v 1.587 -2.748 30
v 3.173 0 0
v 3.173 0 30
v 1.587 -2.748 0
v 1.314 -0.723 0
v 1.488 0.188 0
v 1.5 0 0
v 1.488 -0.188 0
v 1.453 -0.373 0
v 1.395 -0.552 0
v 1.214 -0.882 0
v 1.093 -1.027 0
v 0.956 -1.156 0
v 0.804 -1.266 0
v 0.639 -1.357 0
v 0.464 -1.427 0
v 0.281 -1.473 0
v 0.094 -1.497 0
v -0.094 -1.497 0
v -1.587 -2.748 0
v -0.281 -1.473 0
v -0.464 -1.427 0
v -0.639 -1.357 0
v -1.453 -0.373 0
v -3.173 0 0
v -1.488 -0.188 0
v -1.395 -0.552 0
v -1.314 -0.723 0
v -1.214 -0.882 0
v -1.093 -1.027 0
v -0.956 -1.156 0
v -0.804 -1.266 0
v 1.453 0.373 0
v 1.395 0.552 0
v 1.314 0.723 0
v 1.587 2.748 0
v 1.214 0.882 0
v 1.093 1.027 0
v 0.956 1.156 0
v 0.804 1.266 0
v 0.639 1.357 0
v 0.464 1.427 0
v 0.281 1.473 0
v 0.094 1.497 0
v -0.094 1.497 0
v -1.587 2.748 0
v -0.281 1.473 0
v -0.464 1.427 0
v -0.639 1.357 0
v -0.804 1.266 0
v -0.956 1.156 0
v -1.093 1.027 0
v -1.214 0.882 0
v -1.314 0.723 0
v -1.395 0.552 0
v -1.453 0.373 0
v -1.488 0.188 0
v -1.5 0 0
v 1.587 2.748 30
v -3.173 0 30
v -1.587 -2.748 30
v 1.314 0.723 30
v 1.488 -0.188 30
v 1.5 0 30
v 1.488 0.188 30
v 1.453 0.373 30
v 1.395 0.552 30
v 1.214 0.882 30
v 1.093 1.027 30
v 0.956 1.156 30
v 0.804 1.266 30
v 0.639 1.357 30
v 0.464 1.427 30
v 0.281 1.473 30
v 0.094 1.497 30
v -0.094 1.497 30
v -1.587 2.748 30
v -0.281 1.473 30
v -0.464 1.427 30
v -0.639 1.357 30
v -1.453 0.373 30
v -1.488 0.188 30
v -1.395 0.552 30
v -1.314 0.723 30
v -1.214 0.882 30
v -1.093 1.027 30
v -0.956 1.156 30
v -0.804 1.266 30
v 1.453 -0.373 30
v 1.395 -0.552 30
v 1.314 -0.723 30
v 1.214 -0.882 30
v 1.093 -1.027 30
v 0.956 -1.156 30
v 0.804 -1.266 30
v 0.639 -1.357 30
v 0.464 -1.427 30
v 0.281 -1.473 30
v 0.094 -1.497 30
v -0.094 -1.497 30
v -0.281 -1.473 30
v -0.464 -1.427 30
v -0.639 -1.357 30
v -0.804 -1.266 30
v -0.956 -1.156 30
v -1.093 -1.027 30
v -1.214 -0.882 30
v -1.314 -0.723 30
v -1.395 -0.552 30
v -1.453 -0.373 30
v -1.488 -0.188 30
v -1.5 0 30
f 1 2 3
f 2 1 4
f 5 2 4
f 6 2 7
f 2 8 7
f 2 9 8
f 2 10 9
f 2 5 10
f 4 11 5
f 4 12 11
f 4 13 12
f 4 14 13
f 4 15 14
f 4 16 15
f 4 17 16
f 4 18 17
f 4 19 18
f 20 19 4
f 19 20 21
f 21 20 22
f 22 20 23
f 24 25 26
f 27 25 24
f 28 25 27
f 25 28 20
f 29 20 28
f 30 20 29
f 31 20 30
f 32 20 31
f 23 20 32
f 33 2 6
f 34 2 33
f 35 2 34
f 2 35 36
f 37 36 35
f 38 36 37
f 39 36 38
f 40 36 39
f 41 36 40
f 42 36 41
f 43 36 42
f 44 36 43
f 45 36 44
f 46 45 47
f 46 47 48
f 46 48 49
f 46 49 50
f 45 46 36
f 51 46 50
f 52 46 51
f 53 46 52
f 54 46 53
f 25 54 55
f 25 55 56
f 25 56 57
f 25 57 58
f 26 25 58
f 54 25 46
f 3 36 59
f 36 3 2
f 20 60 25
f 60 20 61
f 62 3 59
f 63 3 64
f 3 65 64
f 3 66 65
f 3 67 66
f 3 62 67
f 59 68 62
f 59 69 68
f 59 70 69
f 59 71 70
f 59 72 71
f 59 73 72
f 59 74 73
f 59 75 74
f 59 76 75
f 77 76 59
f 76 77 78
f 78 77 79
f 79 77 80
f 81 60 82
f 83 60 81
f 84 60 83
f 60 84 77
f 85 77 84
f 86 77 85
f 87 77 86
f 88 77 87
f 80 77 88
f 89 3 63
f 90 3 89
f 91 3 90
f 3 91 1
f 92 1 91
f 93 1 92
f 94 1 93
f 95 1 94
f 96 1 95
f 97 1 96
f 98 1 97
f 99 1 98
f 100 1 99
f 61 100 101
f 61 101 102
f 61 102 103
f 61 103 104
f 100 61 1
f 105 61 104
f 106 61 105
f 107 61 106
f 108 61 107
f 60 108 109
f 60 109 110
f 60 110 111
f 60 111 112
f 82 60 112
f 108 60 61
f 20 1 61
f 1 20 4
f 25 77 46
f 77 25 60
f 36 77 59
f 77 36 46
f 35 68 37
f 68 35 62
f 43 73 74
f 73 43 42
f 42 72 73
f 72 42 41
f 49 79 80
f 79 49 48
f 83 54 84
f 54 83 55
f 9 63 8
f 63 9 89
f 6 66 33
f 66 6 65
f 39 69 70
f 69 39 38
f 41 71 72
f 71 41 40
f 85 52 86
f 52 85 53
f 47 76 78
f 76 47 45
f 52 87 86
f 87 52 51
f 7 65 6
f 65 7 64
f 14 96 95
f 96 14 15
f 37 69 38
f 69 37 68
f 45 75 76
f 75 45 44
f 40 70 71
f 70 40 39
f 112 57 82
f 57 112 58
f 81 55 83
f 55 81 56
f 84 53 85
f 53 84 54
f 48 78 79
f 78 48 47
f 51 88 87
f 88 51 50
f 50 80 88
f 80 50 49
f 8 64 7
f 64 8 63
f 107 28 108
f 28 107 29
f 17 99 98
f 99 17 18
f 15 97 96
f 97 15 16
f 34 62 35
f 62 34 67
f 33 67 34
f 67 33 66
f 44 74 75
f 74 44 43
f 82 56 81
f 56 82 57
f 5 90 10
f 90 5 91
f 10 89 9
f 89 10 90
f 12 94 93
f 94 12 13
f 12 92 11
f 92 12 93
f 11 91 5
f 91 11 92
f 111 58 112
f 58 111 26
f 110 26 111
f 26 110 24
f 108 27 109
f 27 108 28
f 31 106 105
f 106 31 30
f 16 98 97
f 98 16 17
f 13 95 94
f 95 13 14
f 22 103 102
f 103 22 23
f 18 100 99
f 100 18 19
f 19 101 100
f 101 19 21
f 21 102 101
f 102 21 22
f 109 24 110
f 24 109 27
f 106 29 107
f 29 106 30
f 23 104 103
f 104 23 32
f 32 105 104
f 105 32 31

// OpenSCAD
$fn = 50;


difference() {
	union() {
		translate(v = [0, 0, 0]) {
			rotate(a = [0, 0, 0]) {
				translate(v = [0, 0, 0]) {
					rotate(a = [0, 0, 0]) {
						linear_extrude(height = 30) {
							polygon(points = [[3.1735000000, 0.0000000000], [1.5867500000, 2.7483316189], [-1.5867500000, 2.7483316189], [-3.1735000000, 0.0000000000], [-1.5867500000, -2.7483316189], [1.5867500000, -2.7483316189]]);
						}
					}
				}
			}
		}
	}
	union() {
		translate(v = [0, 0, -10]) {
			rotate(a = [0, 0, 0]) {
				cylinder(h = 100, r = 1.5000000000);
			}
		}
	}
}
